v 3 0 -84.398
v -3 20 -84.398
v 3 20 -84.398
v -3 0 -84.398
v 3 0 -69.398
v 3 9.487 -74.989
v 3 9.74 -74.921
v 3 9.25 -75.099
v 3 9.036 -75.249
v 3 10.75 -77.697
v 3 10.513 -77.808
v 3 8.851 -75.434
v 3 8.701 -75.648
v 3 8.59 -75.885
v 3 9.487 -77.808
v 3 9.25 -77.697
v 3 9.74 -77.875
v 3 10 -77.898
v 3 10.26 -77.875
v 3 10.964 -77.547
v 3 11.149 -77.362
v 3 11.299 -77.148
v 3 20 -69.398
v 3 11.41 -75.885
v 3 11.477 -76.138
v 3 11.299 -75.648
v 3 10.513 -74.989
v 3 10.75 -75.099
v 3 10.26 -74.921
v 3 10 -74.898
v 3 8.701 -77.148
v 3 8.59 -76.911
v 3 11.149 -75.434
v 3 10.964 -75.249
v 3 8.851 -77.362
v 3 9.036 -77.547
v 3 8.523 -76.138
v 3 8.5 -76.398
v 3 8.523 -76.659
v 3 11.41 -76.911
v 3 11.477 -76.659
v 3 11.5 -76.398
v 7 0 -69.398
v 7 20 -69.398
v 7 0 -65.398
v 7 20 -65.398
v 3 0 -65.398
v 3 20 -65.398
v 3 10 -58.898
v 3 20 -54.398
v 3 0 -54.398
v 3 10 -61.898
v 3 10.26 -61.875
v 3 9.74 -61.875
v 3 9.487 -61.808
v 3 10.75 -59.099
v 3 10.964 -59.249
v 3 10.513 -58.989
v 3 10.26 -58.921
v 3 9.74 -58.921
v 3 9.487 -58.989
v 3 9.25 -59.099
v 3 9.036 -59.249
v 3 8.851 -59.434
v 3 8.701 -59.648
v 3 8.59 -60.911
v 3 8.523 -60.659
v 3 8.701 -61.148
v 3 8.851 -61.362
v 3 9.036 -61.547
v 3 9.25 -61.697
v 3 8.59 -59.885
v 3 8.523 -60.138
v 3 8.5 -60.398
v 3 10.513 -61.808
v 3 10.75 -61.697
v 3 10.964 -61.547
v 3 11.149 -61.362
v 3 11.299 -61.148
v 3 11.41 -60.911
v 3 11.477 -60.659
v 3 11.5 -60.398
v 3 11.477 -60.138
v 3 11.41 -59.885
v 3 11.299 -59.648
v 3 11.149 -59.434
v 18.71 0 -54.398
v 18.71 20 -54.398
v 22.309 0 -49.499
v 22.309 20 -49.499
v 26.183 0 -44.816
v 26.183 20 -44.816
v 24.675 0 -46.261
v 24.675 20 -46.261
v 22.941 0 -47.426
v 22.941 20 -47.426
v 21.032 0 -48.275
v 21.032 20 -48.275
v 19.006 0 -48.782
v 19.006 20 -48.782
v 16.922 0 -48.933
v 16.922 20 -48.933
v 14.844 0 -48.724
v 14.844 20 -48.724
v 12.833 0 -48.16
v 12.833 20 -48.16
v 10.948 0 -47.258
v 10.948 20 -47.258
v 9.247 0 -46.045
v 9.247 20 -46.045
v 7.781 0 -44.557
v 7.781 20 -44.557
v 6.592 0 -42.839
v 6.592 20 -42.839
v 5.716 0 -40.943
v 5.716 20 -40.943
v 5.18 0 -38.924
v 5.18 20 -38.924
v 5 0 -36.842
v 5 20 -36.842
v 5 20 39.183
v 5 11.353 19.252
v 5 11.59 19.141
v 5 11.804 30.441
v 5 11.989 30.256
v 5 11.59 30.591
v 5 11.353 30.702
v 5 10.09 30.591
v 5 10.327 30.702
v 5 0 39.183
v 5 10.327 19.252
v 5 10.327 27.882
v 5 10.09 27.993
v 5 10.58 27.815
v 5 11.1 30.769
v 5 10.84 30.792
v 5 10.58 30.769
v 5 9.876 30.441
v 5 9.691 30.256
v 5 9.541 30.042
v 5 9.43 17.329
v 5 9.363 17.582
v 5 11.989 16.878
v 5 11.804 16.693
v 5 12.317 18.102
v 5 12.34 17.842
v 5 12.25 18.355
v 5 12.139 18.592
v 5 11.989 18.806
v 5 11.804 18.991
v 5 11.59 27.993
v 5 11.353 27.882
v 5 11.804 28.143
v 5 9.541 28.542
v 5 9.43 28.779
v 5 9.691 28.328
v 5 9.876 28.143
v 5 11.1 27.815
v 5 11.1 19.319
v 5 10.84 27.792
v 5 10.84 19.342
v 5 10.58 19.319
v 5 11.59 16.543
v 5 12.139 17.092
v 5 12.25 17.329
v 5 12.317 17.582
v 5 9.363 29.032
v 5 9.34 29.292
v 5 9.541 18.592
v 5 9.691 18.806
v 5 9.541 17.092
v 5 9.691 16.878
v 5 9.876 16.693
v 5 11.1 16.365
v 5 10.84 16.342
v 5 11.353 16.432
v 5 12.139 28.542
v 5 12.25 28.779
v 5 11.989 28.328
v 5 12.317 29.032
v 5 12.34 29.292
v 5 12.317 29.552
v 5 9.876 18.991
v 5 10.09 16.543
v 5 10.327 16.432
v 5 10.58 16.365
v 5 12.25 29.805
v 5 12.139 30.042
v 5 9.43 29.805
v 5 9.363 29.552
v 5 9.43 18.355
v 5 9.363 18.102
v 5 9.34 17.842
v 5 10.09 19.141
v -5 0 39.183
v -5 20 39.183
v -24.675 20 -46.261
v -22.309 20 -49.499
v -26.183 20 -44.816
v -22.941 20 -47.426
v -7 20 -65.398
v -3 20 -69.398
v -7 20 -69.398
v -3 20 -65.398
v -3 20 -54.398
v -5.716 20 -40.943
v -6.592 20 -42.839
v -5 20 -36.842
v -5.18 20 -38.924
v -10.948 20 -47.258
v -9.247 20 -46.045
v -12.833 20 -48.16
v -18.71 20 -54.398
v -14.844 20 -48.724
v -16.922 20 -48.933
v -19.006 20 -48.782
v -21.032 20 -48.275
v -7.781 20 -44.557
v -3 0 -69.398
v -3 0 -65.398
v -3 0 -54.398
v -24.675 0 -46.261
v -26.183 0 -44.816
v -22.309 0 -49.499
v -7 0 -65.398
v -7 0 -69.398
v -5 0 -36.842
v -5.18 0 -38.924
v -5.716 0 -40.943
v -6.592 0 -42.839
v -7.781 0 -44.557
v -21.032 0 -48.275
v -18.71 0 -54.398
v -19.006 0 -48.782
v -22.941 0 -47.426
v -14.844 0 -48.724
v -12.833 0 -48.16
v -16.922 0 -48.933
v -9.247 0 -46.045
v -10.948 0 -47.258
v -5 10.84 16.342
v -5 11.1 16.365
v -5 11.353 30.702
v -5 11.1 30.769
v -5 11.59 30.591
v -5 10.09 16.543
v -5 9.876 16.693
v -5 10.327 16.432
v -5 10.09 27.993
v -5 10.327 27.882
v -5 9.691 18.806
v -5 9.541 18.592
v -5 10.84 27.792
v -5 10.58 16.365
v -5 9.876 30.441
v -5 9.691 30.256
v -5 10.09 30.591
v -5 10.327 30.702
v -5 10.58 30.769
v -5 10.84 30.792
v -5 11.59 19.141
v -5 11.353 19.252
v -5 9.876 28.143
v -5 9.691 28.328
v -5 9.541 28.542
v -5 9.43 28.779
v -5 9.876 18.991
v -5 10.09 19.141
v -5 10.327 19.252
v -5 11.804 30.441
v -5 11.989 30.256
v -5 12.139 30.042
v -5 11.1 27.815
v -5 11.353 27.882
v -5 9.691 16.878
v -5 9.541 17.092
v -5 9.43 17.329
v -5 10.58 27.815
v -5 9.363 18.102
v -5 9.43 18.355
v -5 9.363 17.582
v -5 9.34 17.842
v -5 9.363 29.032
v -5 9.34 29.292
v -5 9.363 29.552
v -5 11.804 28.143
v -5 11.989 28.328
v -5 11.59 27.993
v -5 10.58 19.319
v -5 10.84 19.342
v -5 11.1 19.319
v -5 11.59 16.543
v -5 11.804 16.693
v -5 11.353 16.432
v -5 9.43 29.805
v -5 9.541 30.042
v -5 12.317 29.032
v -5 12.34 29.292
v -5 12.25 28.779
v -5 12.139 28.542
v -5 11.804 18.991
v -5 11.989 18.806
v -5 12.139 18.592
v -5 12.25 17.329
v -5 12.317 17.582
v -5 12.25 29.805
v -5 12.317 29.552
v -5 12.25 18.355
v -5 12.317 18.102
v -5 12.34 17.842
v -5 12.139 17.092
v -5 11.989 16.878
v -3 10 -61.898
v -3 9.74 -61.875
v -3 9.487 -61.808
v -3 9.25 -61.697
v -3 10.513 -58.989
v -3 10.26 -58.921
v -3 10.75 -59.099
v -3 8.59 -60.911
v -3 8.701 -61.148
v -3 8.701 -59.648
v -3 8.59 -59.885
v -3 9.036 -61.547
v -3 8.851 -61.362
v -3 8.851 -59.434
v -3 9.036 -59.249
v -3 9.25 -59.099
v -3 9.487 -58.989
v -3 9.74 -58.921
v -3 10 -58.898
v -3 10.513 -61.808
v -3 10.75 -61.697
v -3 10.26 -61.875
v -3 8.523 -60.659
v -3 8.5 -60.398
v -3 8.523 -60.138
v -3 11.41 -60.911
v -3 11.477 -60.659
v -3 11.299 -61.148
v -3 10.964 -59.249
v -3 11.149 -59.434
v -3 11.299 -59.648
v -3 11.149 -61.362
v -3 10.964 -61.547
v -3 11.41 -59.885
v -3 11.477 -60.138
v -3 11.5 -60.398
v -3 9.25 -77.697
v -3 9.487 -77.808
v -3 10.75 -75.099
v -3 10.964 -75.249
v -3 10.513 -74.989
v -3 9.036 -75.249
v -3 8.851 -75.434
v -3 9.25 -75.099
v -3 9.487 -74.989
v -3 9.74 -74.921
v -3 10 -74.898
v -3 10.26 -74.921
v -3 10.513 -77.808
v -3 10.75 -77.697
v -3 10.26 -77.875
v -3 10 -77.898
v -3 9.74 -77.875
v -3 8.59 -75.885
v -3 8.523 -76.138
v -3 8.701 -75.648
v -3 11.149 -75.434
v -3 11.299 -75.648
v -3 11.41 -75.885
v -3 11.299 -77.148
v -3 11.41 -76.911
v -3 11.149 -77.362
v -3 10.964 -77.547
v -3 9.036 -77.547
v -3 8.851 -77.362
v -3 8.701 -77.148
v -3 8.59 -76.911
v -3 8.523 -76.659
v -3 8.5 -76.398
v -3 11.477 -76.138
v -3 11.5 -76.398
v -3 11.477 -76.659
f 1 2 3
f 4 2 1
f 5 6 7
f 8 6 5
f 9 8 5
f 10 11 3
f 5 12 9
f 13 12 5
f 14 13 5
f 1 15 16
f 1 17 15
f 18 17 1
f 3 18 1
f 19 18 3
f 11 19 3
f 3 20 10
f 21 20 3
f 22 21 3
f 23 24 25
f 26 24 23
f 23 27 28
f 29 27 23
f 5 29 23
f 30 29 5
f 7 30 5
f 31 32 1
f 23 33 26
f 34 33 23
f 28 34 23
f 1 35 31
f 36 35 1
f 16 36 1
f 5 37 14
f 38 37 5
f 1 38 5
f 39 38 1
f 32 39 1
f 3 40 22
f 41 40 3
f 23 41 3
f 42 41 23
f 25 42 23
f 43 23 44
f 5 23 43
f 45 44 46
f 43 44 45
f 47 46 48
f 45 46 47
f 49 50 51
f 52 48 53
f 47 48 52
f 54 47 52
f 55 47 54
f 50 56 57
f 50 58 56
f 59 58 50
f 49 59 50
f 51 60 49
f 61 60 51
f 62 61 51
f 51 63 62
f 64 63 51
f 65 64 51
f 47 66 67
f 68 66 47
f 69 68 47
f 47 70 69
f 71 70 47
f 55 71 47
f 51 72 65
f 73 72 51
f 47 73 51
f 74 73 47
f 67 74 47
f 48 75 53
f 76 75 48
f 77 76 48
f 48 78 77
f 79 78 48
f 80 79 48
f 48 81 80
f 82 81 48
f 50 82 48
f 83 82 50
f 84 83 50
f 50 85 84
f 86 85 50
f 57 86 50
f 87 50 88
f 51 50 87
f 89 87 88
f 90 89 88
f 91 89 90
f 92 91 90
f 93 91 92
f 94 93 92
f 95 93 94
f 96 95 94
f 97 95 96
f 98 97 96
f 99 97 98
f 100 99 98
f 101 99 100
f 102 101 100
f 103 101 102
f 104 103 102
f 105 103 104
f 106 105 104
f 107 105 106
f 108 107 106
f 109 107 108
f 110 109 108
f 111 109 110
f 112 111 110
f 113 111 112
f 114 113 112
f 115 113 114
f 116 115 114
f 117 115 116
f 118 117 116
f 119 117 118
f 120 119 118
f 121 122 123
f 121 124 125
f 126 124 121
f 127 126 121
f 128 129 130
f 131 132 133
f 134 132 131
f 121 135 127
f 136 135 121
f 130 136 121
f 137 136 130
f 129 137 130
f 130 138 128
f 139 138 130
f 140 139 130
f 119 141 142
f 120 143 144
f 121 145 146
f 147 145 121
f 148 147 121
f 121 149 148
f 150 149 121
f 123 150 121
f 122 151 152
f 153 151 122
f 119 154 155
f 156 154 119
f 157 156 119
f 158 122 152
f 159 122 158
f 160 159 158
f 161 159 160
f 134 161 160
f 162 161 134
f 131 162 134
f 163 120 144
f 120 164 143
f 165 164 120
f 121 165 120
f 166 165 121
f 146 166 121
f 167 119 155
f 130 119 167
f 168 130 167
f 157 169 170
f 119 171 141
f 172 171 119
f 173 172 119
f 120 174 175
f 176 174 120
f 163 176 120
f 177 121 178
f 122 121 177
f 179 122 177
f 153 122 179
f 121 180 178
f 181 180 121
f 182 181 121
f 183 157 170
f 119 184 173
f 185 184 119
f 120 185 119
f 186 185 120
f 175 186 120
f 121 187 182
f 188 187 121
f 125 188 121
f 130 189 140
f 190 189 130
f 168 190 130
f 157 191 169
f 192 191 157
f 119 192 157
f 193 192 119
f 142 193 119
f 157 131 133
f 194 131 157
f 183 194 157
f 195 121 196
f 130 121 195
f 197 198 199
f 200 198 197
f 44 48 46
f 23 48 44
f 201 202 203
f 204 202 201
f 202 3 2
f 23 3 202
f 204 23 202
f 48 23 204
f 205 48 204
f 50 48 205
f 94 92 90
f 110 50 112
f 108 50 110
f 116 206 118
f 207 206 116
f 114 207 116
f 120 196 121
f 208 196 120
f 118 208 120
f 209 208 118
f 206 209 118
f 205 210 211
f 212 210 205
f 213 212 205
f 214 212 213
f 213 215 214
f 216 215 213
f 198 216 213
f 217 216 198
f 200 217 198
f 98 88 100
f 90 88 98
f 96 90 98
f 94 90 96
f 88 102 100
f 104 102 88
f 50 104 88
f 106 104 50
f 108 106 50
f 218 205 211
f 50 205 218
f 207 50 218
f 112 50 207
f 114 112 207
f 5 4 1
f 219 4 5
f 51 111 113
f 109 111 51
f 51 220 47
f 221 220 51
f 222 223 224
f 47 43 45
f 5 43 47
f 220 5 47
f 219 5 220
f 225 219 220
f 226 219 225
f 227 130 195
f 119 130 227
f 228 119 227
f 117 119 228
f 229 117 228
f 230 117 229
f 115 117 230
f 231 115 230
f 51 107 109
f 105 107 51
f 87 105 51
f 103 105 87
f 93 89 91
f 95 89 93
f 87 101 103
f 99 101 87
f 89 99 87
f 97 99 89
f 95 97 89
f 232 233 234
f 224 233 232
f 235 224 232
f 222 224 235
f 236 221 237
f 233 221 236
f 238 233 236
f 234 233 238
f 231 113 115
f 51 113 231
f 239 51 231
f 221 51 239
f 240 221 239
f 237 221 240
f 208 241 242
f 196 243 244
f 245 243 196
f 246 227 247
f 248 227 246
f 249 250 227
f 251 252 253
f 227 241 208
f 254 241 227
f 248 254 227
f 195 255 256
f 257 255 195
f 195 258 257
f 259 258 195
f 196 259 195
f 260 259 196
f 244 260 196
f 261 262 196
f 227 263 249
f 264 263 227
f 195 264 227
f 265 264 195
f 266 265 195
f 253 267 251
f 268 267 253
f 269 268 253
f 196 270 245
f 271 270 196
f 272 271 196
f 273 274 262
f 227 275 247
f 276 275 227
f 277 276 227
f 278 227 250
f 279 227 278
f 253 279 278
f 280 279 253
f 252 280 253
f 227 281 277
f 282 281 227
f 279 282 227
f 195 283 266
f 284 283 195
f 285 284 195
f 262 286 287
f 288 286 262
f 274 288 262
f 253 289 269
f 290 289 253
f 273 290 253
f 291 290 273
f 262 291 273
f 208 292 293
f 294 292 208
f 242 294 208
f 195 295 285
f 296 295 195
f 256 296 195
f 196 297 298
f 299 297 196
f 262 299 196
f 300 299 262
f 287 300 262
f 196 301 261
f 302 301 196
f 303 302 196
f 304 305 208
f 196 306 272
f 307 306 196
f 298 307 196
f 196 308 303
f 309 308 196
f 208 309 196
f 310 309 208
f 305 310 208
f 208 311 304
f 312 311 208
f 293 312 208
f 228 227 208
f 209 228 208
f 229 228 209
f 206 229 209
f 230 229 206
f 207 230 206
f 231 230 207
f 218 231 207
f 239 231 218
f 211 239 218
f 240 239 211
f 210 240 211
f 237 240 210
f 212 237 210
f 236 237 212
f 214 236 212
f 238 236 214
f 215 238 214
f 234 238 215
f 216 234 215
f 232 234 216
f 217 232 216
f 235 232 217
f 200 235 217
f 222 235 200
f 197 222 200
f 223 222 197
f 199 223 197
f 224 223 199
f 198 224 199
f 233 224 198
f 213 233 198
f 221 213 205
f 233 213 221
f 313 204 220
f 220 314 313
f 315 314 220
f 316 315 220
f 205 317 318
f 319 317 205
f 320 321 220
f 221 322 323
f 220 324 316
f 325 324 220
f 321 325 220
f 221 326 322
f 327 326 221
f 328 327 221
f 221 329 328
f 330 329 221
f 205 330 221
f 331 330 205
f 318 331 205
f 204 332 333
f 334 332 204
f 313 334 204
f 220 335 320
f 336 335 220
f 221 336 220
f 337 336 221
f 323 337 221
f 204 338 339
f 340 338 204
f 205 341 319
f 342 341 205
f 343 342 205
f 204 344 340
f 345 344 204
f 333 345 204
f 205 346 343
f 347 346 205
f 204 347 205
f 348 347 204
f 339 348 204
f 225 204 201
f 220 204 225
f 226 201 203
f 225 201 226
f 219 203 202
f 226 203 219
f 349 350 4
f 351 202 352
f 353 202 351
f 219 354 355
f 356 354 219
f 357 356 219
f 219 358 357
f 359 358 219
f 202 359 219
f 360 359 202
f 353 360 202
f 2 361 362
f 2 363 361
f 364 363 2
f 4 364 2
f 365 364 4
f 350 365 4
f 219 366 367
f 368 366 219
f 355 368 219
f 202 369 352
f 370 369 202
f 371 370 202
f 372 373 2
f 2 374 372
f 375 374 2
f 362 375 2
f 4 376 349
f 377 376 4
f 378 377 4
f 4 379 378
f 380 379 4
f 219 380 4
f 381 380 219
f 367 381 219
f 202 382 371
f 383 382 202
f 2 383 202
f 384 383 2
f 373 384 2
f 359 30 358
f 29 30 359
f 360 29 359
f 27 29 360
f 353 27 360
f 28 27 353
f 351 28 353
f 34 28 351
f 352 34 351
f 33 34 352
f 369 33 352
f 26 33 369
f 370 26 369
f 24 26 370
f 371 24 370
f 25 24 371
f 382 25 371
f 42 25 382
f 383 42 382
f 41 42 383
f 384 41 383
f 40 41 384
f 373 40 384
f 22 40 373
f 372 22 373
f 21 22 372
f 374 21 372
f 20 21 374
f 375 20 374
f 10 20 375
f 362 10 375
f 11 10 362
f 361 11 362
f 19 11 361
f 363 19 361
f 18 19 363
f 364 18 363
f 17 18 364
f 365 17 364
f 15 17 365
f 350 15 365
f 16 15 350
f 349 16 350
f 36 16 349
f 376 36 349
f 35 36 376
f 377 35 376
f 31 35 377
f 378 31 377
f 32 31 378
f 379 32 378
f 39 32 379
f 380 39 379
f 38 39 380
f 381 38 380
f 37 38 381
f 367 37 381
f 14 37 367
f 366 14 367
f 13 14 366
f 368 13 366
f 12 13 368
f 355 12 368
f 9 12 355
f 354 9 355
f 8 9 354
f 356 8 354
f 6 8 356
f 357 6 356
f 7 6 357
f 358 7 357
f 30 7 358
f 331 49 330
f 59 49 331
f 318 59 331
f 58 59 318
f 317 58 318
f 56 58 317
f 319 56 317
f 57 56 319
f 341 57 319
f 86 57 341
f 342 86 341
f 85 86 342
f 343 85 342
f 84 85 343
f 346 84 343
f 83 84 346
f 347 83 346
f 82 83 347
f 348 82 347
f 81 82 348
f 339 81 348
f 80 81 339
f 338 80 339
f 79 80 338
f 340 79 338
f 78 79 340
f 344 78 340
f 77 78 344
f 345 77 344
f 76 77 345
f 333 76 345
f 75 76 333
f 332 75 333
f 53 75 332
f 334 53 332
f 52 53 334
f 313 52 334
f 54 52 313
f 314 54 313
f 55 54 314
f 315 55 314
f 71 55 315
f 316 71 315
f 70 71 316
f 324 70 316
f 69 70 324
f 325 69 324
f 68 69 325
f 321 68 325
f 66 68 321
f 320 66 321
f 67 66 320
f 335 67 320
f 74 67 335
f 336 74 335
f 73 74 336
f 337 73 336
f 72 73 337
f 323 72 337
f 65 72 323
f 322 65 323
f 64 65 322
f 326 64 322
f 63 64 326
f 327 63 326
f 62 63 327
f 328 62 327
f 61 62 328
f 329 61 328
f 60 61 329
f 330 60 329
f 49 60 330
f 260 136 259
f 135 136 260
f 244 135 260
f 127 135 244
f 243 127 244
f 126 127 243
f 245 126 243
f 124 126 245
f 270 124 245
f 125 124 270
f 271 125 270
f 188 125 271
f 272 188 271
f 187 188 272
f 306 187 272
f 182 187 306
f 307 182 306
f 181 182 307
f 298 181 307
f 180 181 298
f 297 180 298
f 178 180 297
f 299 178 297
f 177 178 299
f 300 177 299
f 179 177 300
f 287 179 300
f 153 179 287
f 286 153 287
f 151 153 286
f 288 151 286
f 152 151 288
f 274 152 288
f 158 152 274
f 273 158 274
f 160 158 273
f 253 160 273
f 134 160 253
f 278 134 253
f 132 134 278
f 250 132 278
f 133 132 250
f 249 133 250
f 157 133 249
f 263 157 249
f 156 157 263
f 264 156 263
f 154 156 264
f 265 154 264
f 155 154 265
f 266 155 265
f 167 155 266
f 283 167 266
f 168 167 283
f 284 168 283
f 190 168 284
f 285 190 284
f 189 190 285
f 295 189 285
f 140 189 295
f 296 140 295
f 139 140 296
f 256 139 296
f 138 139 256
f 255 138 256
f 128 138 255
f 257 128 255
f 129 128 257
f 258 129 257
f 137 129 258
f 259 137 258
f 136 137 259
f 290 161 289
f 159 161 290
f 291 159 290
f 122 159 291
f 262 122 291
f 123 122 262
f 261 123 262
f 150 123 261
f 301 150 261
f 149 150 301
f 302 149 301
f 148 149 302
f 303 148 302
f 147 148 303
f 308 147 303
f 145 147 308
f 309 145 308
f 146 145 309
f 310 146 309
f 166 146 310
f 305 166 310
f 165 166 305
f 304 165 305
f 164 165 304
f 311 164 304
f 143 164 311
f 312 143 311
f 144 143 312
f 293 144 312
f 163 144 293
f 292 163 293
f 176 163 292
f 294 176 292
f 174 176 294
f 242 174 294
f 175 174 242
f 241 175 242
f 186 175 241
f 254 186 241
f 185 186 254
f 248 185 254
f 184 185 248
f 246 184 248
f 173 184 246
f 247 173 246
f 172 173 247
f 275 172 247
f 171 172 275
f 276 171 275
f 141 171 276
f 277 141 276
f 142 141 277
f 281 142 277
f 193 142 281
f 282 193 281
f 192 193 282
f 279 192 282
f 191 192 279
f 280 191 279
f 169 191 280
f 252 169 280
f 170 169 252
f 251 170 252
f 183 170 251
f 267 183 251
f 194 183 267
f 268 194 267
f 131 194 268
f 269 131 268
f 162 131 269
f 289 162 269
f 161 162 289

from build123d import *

# Parameters (mm, degrees)
BOSS_EXTRU_1_DEPTH      = 20
ESQUISSE3_R             = 1.5
ENL_V_MAT_EXTRU_3_DEPTH = 20
ESQUISSE4_R             = 1.5
ENL_V_MAT_EXTRU_4_DEPTH = 10
ESQUISSE5_R             = 1.5
ENL_V_MAT_EXTRU_5_DEPTH = 10


with BuildPart() as part:
    # Esquisse1 → Boss.-Extru.1 (new body)
    with BuildSketch(Plane(origin=(0, 0, 0), x_dir=(1, 0, 0), z_dir=(0, 1, 0))):
        with BuildLine():
            Line((-3, 84.398281038), (-3, 69.398281038))
            Line((-3, 69.398281038), (-7, 69.398281038))
            Line((-7, 69.398281038), (-7, 65.398281038))
            Line((-7, 65.398281038), (-3, 65.398281038))
            Line((-3, 65.398281038), (-3, 54.398281038))
            Line((-3, 54.398281038), (-18.71, 54.398281038))
            ThreePointArc((-18.71, 54.398281038), (-22.308577777, 49.499317693), (-26.183329952, 44.81574006))
            ThreePointArc((-26.183329952, 44.81574006), (-12.83252844, 48.159570073), (-5, 36.842476876))
            Line((-5, 36.842476876), (-5, -39.182739587))
            Line((-5, -39.182739587), (0, -39.182739587))
            Line((0, -39.182739587), (0, 84.398281038))
            Line((0, 84.398281038), (-3, 84.398281038))
        make_face()
    boss_extru_1 = extrude(amount=BOSS_EXTRU_1_DEPTH)

    # Symétrie1: Boss.-Extru.1 across plane
    add(boss_extru_1.mirror(Plane(origin=(0, 20, -84.398281038), x_dir=(0, 0, 1), z_dir=(-1, 0, 0))))

    # Esquisse3 → Enlèv. mat.-Extru.3 (cut)
    with BuildSketch(Plane.ZY.offset(3)):
        with Locations((-76.398281038, 10)):
            Circle(ESQUISSE3_R)
        with Locations((-60.398281038, 10)):
            Circle(ESQUISSE3_R)
    extrude(amount=-ENL_V_MAT_EXTRU_3_DEPTH, mode=Mode.SUBTRACT)

    # Esquisse4 → Enlèv. mat.-Extru.4 (cut)
    with BuildSketch(Plane.ZY.offset(5)):
        with Locations((29.291975875, 10.84)):
            Circle(ESQUISSE4_R)
    extrude(amount=-ENL_V_MAT_EXTRU_4_DEPTH, mode=Mode.SUBTRACT)

    # Esquisse5 → Enlèv. mat.-Extru.5 (cut)
    with BuildSketch(Plane.ZY.offset(5)):
        with Locations((17.841975875, 10.84)):
            Circle(ESQUISSE5_R)
    extrude(amount=-ENL_V_MAT_EXTRU_5_DEPTH, mode=Mode.SUBTRACT)


solid = part.part
